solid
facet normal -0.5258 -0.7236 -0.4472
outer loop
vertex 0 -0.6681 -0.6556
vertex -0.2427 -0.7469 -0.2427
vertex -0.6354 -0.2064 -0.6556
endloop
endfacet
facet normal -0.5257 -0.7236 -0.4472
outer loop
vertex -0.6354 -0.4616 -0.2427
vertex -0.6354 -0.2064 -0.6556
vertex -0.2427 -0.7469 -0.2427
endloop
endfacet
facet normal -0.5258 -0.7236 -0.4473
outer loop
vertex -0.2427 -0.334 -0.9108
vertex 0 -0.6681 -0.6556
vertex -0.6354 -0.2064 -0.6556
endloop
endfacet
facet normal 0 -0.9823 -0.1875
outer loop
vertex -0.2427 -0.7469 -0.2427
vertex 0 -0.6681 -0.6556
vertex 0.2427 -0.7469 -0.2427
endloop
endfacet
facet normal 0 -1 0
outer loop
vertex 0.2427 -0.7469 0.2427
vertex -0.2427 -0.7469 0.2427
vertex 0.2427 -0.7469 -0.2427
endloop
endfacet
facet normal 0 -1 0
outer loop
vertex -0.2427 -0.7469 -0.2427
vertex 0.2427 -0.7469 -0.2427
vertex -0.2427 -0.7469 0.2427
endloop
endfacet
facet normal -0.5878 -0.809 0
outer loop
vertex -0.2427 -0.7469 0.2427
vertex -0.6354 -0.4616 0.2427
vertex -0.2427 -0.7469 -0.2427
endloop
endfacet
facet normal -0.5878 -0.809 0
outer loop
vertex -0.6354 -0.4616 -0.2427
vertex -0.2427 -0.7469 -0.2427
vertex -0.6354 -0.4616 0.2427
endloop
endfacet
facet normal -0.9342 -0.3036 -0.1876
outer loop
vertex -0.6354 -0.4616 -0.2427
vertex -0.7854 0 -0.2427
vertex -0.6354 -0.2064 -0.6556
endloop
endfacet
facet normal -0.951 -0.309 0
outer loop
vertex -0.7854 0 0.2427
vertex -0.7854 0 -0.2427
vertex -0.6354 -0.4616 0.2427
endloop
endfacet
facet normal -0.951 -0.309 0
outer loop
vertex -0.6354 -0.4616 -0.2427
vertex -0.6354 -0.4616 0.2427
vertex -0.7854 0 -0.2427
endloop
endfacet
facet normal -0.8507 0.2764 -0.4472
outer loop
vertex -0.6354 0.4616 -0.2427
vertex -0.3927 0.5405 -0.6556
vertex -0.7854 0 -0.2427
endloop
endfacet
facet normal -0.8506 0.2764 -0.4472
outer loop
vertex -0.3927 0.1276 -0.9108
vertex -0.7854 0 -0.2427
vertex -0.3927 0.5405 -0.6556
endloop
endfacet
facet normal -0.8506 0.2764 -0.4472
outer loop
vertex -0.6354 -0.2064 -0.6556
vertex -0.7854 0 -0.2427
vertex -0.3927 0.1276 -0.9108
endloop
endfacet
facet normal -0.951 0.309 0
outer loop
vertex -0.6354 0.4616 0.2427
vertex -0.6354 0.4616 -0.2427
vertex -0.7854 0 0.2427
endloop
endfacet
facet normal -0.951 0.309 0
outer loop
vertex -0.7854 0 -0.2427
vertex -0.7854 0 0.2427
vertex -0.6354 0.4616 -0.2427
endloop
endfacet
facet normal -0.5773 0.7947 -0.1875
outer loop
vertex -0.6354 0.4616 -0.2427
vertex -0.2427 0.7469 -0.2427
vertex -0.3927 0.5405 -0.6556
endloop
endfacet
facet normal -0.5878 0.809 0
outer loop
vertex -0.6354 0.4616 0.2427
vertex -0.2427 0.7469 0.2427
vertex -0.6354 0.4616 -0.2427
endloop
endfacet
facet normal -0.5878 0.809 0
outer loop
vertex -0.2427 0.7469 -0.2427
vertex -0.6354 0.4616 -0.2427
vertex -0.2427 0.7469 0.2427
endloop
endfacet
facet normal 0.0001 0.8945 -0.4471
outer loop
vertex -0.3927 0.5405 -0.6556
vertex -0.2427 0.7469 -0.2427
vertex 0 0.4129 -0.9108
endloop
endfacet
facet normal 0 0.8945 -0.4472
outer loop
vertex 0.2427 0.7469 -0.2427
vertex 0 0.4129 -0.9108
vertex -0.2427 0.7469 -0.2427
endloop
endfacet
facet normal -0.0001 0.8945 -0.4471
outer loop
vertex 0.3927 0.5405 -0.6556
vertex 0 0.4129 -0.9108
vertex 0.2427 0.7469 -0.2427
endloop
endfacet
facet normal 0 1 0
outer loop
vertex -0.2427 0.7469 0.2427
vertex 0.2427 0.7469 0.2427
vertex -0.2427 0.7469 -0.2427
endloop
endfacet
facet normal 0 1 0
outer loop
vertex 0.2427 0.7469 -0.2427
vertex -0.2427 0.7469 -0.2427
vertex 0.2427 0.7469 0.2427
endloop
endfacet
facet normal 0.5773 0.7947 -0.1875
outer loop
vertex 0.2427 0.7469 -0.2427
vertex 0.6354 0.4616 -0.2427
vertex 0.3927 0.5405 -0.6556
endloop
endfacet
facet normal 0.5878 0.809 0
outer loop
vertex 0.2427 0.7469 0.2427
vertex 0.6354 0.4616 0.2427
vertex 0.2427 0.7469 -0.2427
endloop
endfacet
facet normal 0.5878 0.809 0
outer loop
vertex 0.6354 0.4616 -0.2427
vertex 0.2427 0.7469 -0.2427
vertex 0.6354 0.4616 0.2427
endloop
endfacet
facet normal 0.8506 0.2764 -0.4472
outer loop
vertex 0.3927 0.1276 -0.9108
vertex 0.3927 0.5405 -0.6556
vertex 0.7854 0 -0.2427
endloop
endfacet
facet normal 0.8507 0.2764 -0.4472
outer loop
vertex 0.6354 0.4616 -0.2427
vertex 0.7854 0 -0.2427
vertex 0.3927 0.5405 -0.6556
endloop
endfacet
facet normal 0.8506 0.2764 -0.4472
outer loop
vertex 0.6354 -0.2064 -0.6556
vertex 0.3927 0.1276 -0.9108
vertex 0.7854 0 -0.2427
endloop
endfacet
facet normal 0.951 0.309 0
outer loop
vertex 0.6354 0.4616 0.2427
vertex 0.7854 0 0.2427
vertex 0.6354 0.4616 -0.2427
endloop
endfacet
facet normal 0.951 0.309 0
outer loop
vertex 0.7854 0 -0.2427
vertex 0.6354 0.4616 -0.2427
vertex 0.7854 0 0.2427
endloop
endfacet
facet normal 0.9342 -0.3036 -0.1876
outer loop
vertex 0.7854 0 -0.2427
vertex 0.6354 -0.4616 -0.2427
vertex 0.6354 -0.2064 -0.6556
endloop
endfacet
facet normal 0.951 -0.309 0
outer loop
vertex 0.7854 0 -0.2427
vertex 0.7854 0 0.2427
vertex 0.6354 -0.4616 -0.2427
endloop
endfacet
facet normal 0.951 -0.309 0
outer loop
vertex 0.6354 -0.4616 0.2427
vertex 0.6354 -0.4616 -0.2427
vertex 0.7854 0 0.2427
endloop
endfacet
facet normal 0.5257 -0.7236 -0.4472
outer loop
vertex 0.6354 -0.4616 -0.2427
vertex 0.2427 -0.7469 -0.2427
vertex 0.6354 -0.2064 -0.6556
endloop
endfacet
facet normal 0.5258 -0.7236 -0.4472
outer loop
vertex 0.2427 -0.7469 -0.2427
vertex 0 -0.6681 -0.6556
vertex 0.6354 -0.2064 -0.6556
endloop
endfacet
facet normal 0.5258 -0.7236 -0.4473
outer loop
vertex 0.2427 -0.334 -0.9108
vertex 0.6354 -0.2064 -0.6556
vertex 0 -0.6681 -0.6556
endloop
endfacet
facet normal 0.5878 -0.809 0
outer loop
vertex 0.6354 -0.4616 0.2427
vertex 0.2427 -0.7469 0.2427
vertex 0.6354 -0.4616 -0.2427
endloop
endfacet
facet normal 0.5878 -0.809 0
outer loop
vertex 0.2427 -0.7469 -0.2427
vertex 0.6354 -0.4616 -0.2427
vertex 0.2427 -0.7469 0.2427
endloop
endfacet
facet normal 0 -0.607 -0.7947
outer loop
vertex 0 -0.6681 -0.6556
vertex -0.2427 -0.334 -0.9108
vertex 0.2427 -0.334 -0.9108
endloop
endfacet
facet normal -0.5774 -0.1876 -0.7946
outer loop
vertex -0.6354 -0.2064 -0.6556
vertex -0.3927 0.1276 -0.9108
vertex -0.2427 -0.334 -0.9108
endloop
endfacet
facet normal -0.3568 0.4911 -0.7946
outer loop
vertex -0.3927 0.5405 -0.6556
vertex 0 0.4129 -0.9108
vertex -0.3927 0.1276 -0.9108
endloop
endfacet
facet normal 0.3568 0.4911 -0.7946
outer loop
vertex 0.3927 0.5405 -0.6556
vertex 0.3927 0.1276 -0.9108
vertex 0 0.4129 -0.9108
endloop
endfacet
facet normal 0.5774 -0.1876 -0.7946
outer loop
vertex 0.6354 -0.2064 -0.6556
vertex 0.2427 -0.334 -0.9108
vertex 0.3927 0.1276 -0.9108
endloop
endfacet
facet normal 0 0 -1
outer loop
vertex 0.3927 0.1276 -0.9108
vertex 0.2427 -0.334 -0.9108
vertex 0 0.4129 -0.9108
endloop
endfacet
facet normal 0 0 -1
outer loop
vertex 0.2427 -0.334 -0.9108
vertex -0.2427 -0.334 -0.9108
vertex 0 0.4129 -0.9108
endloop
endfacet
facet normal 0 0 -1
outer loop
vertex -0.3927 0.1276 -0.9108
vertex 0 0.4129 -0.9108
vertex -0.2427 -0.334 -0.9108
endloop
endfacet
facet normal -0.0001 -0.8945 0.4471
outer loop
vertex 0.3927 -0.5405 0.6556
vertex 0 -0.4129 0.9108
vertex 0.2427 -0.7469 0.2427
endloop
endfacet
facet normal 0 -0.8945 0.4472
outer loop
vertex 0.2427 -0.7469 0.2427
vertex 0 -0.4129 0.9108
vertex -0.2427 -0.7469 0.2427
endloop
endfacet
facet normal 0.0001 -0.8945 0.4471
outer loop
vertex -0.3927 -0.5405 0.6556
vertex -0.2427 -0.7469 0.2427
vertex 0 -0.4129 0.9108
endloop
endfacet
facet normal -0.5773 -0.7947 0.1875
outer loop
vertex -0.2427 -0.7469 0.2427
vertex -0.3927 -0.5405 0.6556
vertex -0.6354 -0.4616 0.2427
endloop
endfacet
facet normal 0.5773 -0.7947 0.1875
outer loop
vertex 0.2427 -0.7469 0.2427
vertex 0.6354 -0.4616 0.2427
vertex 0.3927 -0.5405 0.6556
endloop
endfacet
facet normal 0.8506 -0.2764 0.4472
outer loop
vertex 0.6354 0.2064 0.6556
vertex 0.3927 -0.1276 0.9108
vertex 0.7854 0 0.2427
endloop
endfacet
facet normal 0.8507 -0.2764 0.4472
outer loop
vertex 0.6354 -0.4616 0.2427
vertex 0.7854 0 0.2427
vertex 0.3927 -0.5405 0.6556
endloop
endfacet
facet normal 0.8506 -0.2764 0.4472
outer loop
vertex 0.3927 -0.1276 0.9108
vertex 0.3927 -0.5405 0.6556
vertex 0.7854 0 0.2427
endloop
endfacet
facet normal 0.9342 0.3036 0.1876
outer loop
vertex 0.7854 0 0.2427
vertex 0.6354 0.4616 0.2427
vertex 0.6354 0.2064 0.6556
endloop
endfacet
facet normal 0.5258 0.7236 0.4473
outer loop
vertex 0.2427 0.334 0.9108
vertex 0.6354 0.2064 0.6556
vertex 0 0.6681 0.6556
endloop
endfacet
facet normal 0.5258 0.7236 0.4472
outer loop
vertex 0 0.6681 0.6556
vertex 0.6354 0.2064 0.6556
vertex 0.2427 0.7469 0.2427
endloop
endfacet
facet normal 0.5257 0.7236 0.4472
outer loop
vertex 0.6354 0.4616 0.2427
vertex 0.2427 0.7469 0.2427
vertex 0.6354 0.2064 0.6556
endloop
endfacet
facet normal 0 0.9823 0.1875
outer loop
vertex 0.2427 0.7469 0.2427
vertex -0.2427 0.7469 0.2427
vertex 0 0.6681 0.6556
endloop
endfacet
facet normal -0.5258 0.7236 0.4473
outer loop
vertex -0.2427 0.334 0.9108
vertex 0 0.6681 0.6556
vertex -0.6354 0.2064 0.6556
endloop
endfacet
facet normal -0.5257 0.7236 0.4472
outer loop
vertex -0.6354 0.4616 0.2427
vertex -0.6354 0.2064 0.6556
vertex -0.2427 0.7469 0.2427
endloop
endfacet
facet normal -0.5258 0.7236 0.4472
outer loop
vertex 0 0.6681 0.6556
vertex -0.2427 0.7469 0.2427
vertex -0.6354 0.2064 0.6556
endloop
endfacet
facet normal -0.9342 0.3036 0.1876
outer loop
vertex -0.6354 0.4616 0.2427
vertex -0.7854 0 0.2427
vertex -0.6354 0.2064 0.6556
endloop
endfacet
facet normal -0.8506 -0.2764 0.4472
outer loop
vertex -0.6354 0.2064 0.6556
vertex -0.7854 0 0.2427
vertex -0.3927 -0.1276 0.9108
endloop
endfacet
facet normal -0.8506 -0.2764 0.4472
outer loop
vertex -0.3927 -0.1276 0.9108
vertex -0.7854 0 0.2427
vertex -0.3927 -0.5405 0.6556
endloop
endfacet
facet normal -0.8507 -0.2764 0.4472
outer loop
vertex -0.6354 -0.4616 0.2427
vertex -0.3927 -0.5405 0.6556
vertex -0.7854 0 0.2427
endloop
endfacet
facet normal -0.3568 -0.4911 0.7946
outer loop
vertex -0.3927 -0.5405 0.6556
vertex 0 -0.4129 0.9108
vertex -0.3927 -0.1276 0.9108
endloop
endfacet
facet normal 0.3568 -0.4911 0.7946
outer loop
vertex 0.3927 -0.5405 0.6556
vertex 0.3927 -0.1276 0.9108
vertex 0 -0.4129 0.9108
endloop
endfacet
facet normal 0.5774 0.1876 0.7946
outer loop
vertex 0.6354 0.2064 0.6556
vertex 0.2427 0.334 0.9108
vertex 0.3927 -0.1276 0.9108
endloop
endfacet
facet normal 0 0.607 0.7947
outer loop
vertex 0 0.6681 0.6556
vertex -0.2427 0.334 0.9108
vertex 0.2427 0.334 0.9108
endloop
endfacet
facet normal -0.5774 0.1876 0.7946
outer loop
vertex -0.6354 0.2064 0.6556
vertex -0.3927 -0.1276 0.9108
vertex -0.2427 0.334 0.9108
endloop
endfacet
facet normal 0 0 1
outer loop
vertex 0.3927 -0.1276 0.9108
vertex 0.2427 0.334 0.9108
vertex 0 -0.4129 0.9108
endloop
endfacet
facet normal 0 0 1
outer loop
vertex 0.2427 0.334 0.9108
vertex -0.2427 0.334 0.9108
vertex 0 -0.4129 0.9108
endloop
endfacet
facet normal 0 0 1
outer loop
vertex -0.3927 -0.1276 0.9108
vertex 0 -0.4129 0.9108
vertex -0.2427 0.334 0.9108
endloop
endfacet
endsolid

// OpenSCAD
polyhedron( points = [[-0.242695116044706, -0.746938764730164, -0.242695116349596], [-0.635384063462253, -0.461633544110556, -0.242695116349596], [-0.785377894620574, -1.7804325599543e-11, -0.242695116349596], [-0.63538406412317, 0.461633544061476, -0.242695116349596], [-0.242695117114093, 0.746938764645822, -0.242695116349596], [0.242695115663887, 0.746938764645827, -0.242695116349596], [0.63538406310705, 0.461633544061476, -0.242695116349596], [0.785377894306824, -1.7804325599543e-11, -0.242695116349596], [0.635384063850876, -0.461633544110554, -0.242695116349596], [0.242695116867415, -0.746938764730164, -0.242695116349596], [4.23935958617427e-10, -0.668082340982976, -0.655592710302996], [-0.635384063450355, -0.206448797019375, -0.6555927100964], [-0.392688946824404, 0.540489967250337, -0.655592710322488], [0.392688947764533, 0.540489967165025, -0.655592710322488], [0.635384064144625, -0.2064487972556, -0.655592710322488], [-0.242695116084131, -0.334041170390685, -0.910777457055085], [-0.392688946833901, 0.127592373273552, -0.910777457269759], [4.51969628787464e-10, 0.412897593684599, -0.910777457269759], [0.392688947681711, 0.127592373196298, -0.910777457269759], [0.242695116814913, -0.334041170243832, -0.910777456977627], [-0.242695116022914, -0.746938764663094, 0.242695116562525], [0.242695116843929, -0.746938764663094, 0.242695116473663], [0.635384063771758, -0.461633544056293, 0.242695116351674], [0.785377894182971, 1.57313181139103e-11, 0.242695116243156], [0.635384062966452, 0.461633544074286, 0.242695116189557], [0.242695115540915, 0.746938764645827, 0.242695116211351], [-0.242695117191786, 0.746938764645822, 0.242695116300213], [-0.635384064145233, 0.461633544074286, 0.242695116422201], [-0.785377894597902, 1.57264680911977e-11, 0.24269511653072], [-0.63538406342283, -0.461633544056295, 0.242695116584319], [-0.392688946795668, -0.540489967341254, 0.65559271045008], [0.392688947648656, -0.540489967444551, 0.655592710099702], [0.635384063195731, 0.206448797118656, 0.655592710150202], [-6.97184917959369e-10, 0.668082341118022, 0.655592710185465], [-0.635384063808863, 0.206448797094727, 0.655592710382849], [4.48997103756075e-10, -0.412897593751903, 0.910777457072615], [0.392688947145612, -0.127592373365748, 0.910777457165301], [0.242695115954478, 0.334041170601199, 0.910777457111699], [-0.242695116683248, 0.334041170597034, 0.910777457200564], [-0.392688946854022, -0.127592373033984, 0.910777457016951]], faces = [[0, 1, 11, 15, 10], [0, 10, 9], [0, 9, 21, 20], [0, 20, 29, 1], [1, 2, 11], [1, 29, 28, 2], [2, 3, 12, 16, 11], [2, 28, 27, 3], [3, 4, 12], [3, 27, 26, 4], [4, 5, 13, 17, 12], [4, 26, 25, 5], [5, 6, 13], [5, 25, 24, 6], [6, 7, 14, 18, 13], [6, 24, 23, 7], [7, 8, 14], [7, 23, 22, 8], [8, 9, 10, 19, 14], [8, 22, 21, 9], [10, 15, 19], [11, 16, 15], [12, 17, 16], [13, 18, 17], [14, 19, 18], [15, 16, 17, 18, 19], [20, 21, 31, 35, 30], [20, 30, 29], [21, 22, 31], [22, 23, 32, 36, 31], [23, 24, 32], [24, 25, 33, 37, 32], [25, 26, 33], [26, 27, 34, 38, 33], [27, 28, 34], [28, 29, 30, 39, 34], [30, 35, 39], [31, 36, 35], [32, 37, 36], [33, 38, 37], [34, 39, 38], [35, 36, 37, 38, 39]]);
